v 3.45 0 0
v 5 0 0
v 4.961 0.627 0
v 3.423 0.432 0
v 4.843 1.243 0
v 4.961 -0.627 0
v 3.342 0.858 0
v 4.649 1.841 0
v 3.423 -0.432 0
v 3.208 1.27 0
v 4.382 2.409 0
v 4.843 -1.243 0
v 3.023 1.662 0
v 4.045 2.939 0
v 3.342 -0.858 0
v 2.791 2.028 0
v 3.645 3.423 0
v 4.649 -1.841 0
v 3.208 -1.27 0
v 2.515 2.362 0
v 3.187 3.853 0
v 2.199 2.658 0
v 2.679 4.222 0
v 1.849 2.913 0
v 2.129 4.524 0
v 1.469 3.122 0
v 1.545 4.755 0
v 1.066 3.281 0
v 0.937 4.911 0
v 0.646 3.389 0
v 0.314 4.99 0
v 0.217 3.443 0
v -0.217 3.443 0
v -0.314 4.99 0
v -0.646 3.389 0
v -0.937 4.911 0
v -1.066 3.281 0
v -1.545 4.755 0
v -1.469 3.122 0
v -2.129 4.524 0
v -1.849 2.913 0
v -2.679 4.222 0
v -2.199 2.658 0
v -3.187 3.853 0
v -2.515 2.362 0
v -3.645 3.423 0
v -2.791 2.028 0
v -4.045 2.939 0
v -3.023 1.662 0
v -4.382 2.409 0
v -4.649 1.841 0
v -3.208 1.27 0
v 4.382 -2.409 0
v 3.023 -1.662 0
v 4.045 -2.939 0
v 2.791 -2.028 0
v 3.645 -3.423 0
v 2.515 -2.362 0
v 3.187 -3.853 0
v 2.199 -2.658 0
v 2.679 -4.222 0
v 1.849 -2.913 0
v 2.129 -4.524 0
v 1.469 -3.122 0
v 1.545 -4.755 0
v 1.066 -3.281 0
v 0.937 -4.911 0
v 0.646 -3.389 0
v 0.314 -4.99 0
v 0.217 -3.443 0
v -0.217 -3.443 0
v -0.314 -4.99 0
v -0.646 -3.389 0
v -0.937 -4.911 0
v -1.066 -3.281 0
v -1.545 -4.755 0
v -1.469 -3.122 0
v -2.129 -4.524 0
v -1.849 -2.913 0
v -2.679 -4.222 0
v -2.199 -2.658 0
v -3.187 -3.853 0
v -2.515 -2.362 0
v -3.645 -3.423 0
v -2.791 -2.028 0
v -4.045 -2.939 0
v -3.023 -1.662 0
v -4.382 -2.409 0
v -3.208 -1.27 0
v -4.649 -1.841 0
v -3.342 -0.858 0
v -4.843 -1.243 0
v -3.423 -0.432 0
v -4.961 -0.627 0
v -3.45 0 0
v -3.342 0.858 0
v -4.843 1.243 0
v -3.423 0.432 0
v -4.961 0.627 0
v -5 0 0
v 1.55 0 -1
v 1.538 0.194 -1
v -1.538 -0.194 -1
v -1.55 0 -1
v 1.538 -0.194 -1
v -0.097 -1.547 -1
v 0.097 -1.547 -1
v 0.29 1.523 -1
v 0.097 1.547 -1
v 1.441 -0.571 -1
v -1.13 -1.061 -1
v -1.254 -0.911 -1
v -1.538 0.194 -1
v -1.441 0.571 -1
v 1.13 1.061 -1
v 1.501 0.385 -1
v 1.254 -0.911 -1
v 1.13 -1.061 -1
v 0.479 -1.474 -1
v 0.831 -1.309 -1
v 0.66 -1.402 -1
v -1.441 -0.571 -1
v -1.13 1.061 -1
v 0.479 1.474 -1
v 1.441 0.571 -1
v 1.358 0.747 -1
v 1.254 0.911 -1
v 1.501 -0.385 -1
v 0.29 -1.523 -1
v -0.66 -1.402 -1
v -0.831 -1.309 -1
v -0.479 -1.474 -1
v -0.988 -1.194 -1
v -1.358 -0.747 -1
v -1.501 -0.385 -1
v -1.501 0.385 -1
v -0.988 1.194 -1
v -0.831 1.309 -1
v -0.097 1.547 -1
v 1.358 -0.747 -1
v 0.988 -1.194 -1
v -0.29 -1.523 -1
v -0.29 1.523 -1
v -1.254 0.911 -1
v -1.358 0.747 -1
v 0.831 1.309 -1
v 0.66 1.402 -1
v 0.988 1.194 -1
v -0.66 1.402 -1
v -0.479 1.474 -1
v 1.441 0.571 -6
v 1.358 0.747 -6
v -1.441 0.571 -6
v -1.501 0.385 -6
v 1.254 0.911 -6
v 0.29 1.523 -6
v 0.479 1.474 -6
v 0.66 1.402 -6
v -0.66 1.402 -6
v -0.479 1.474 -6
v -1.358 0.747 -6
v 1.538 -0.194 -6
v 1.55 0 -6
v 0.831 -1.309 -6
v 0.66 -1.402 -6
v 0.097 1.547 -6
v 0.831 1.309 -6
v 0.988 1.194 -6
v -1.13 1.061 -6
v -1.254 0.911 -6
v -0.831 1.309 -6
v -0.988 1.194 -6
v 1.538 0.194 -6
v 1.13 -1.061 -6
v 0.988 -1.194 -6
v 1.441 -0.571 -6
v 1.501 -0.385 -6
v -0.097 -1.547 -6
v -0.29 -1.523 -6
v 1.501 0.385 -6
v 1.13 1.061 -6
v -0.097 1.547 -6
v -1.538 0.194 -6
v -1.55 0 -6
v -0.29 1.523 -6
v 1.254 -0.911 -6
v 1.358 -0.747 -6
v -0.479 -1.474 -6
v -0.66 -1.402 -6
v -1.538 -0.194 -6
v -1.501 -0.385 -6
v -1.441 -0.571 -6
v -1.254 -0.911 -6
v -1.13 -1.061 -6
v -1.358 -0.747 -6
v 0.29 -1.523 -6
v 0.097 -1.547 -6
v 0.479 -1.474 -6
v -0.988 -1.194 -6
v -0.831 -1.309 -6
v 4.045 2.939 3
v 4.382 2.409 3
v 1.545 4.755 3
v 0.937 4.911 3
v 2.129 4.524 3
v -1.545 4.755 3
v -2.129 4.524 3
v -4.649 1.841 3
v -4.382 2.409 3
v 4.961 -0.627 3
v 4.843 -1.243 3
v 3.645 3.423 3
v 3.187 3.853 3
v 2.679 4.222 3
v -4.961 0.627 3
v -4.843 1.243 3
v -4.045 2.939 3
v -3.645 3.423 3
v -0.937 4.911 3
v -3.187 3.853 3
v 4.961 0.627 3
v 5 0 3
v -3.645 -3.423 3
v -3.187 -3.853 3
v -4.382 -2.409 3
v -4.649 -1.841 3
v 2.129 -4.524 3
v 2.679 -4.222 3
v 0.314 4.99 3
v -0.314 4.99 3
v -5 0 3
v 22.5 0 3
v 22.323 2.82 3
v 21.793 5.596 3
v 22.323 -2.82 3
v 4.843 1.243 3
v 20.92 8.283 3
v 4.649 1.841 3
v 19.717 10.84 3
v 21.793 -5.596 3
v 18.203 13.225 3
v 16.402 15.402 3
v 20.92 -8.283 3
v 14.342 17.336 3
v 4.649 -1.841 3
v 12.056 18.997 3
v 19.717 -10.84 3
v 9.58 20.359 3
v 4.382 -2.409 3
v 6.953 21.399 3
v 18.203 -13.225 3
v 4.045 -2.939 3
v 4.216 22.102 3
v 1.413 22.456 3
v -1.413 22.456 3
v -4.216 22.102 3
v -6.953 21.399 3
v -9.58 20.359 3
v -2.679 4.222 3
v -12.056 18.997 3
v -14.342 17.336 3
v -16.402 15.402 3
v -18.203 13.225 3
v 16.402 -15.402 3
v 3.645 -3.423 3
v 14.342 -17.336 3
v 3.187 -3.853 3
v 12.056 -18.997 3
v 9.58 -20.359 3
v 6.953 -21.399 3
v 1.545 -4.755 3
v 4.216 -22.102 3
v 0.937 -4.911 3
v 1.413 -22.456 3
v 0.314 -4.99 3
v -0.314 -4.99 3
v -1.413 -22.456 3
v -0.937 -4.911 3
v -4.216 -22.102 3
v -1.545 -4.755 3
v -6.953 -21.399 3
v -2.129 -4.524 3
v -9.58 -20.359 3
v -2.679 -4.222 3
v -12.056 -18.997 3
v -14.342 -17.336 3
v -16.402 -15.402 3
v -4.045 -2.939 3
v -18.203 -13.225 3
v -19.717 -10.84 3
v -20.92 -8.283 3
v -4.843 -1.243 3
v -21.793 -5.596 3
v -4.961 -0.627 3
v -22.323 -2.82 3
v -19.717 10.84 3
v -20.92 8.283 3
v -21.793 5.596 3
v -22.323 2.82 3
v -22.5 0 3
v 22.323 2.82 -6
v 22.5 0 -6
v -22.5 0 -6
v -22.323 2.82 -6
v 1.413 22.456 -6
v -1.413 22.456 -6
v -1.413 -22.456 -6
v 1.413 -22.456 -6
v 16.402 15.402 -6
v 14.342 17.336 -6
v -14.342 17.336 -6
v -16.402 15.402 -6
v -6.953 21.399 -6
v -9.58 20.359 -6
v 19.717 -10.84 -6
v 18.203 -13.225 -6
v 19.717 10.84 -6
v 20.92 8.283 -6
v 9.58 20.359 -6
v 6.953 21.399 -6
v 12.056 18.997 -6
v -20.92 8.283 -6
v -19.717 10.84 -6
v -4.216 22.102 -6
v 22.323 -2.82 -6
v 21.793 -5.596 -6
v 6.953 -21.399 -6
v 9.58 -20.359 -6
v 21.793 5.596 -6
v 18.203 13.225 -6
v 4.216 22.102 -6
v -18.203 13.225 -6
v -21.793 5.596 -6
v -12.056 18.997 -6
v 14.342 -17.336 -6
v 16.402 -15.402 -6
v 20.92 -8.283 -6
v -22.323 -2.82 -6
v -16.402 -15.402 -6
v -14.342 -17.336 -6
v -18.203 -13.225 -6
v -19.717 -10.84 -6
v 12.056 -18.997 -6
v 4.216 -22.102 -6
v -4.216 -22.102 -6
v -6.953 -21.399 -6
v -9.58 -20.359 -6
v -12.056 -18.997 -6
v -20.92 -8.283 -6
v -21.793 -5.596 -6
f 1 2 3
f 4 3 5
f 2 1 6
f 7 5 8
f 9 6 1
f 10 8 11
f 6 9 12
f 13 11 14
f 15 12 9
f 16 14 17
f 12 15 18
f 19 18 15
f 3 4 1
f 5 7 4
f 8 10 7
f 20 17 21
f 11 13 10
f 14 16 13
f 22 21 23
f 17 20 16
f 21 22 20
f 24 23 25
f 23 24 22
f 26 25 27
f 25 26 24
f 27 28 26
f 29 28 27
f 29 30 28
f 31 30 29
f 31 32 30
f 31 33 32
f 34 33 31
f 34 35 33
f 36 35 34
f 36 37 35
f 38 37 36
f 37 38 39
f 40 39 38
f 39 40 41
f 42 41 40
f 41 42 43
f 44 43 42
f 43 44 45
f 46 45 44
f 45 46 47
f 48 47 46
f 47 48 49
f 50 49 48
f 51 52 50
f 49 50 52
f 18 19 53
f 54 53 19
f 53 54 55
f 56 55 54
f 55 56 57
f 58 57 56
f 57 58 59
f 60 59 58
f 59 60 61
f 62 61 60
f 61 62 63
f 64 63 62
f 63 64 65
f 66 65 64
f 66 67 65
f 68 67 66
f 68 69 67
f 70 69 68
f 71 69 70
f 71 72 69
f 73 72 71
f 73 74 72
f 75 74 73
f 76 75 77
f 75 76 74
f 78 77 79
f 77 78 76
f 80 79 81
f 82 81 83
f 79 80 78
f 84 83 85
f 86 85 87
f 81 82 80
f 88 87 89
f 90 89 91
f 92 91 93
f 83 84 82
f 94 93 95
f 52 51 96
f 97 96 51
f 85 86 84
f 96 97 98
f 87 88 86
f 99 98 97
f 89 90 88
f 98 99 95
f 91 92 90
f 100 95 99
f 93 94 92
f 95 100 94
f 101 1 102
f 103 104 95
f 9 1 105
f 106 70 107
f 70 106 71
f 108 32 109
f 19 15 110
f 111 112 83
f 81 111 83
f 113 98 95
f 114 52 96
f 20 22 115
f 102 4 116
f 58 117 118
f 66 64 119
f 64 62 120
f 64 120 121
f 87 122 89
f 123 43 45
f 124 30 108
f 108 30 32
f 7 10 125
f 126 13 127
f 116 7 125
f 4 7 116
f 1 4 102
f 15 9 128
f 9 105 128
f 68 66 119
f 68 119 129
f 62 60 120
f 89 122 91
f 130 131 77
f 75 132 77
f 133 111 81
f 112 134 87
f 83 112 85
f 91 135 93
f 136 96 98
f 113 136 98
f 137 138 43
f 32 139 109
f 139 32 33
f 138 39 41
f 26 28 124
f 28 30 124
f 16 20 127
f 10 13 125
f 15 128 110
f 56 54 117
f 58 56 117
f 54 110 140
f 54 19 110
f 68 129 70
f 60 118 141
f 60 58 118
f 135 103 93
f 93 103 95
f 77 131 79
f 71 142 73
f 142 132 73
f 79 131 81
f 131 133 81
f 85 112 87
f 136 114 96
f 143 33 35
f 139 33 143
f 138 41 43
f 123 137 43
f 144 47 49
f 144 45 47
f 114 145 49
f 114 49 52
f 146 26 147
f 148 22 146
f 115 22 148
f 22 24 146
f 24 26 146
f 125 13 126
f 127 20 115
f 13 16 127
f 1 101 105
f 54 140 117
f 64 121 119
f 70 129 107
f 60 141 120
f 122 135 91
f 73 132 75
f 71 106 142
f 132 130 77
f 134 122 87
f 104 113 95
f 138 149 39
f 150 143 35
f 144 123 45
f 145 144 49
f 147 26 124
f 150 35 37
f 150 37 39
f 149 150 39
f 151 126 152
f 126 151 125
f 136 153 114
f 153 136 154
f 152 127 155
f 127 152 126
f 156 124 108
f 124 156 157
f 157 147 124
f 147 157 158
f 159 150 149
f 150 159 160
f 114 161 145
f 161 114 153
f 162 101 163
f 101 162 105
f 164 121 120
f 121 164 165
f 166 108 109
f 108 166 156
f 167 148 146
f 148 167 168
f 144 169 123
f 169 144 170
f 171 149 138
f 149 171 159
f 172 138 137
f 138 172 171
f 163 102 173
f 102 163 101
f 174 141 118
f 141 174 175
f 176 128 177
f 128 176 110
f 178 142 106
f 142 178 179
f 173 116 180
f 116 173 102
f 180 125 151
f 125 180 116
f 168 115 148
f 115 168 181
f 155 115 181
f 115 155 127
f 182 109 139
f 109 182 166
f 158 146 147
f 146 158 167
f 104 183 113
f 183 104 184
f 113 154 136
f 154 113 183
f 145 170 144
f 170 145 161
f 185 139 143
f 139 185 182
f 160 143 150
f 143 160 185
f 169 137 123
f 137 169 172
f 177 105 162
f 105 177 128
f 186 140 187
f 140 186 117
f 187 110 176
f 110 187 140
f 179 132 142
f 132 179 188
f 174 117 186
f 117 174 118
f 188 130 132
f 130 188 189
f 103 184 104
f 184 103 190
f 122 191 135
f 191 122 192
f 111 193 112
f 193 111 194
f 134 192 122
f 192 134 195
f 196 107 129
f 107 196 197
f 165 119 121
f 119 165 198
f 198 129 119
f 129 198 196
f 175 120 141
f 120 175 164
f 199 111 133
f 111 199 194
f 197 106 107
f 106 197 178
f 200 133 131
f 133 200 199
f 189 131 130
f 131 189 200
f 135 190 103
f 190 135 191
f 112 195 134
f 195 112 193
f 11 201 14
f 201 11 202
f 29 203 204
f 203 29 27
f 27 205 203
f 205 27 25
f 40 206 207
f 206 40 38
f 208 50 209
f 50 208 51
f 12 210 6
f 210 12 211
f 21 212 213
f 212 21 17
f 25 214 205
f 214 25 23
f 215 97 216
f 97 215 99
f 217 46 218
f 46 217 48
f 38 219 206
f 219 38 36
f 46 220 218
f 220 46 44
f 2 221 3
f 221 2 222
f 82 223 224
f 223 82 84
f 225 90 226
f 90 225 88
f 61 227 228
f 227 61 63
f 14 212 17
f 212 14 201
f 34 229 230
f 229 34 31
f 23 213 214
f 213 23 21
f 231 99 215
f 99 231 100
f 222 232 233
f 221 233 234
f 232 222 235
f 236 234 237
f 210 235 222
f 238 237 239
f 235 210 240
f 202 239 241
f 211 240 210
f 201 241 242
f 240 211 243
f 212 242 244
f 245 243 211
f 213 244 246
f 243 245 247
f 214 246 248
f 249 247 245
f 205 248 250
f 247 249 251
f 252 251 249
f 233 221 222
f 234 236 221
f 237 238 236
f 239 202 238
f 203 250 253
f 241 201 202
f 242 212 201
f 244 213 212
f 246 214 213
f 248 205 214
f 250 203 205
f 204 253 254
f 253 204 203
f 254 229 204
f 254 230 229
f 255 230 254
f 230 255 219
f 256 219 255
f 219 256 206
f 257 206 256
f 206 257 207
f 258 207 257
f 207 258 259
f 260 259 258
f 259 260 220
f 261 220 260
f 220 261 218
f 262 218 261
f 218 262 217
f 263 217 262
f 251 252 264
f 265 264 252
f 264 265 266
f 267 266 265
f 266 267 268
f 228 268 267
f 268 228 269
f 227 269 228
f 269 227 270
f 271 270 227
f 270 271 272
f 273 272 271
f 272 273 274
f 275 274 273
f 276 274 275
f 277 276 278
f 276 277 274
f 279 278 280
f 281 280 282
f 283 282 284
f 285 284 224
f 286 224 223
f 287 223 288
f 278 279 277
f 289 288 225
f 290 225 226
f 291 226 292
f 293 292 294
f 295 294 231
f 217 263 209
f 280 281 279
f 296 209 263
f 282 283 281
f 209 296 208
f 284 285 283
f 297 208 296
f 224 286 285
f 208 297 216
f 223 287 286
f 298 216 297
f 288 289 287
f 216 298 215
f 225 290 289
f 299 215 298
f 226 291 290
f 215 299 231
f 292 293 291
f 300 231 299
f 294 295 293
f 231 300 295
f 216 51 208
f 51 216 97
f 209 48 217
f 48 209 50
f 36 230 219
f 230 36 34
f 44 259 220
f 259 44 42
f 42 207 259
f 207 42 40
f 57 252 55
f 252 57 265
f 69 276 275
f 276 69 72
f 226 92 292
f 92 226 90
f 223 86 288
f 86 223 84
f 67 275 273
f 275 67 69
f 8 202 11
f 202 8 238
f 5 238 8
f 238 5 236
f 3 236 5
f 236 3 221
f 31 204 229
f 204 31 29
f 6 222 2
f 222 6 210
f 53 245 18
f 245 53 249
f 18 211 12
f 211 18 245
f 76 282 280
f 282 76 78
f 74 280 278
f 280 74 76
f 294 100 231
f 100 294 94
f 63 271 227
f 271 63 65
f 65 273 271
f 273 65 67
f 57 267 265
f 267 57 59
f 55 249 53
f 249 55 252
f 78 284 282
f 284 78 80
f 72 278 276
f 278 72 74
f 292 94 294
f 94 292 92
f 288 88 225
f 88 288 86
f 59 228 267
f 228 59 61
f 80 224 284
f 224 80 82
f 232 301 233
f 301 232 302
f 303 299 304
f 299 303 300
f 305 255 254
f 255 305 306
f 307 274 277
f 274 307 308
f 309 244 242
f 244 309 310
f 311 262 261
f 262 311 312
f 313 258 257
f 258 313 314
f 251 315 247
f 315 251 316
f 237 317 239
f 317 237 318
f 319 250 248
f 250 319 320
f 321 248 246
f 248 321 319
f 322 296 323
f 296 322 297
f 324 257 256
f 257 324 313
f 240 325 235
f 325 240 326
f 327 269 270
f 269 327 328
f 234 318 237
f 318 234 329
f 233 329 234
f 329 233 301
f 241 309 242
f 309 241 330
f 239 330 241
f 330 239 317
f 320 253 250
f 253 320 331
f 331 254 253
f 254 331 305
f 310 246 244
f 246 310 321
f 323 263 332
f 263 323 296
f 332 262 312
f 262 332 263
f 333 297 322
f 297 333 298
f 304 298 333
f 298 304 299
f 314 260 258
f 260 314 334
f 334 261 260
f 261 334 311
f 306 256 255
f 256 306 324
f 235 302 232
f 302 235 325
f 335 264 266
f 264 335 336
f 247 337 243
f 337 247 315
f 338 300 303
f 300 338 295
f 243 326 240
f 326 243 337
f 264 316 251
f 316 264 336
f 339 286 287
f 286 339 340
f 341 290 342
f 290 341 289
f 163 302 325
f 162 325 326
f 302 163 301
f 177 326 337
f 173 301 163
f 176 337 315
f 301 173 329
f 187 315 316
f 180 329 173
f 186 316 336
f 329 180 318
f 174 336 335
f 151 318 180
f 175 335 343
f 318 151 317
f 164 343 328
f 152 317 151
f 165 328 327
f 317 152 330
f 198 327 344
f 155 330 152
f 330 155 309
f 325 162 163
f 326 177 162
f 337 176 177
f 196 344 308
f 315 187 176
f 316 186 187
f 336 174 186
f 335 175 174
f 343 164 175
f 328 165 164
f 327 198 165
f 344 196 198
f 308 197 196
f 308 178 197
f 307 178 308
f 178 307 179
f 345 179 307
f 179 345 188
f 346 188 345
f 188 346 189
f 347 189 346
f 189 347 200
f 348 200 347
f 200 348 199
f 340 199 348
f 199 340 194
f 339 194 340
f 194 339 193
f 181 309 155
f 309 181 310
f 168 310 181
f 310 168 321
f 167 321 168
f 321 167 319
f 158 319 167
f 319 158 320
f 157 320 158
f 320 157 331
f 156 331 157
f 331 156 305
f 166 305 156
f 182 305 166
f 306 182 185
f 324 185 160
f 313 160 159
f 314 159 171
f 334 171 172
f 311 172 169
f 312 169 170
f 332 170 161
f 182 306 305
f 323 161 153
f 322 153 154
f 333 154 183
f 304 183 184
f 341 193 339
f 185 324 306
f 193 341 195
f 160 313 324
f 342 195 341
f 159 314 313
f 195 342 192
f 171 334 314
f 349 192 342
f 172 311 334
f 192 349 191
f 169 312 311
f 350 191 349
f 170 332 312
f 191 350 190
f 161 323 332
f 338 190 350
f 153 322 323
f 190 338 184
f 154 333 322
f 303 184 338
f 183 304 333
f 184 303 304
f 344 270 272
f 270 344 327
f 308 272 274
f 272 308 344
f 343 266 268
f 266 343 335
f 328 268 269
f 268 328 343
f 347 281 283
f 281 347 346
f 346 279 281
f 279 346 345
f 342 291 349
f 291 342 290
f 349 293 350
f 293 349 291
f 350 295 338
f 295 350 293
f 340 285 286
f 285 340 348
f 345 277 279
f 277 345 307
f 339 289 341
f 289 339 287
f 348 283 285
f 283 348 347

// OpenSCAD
$fn = 50;


difference() {
	union() {
		translate(v = [0, 0, -6.0000000000]) {
			cylinder(h = 9, r = 22.5000000000);
		}
	}
	union() {
		translate(v = [0, 0, 0]) {
			rotate(a = [0, 0, 0]) {
				difference() {
					union() {
						translate(v = [0, 0, -9.0000000000]) {
							cylinder(h = 9, r = 1.2500000000);
						}
						translate(v = [0, 0, -1.0000000000]) {
							cylinder(h = 1.0000000000, r1 = 1.5500000000, r2 = 3.4500000000);
						}
						translate(v = [0, 0, -9.0000000000]) {
							cylinder(h = 9, r = 1.5500000000);
						}
						translate(v = [0, 0, -9.0000000000]) {
							cylinder(h = 9, r = 1.2500000000);
						}
					}
					union();
				}
			}
		}
		#cylinder(h = 3, r = 5.0000000000);
	}
}
